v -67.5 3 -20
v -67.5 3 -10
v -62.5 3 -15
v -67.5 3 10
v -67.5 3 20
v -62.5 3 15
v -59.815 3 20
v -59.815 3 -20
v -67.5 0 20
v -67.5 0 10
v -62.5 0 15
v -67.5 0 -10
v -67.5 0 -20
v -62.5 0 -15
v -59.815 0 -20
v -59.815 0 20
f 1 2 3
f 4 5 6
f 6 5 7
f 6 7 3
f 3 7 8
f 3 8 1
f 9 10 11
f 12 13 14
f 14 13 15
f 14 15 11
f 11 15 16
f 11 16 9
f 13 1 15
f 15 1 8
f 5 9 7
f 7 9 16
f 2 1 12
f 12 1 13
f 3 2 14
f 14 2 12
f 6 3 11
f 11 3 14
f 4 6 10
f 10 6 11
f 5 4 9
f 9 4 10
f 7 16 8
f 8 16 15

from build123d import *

# Parameters (mm, degrees)
CROQUIS1_R                 = 11
CROQUIS1_R_2               = 2
CROQUIS1_R_3               = 1.937672591
CROQUIS1_W                 = 30
CROQUIS1_H                 = 3
SALIENTE_EXTRUIR1_DEPTH    = 3
CROQUIS2_R                 = 13
CROQUIS2_R_2               = 11
SALIENTE_EXTRUIR2_DEPTH    = 4
CROQUIS3_R                 = 13
CROQUIS3_R_2               = 9
SALIENTE_EXTRUIR3_DEPTH    = 2
CHAFL_N1_SIZE              = 2
CHAFL_N2_SIZE              = 10
CORTAR_EXTRUIR1_DEPTH      = 10
CORTAR_EXTRUIR1_DEPTH_BACK = 10
CROQUIS4_W                 = 138.754626828
CROQUIS4_H                 = 77.213714618


with BuildPart() as part:
    # Croquis1 → Saliente-Extruir1 (new body)
    with BuildSketch(Plane(origin=(0, 0, 0), x_dir=(1, 0, 0), z_dir=(0, 1, 0))):
        Polygon((-67.5, 10), (-62.5, 15), (-62.5, -15), (-67.5, -10), (-67.5, -20), (67.5, -20), (67.5, 20), (-67.5, 20), align=None)
        with Locations((46.713951104, 0)):
            Circle(CROQUIS1_R, mode=Mode.SUBTRACT)
        with Locations((-52.5, 0)):
            Circle(CROQUIS1_R_2, mode=Mode.SUBTRACT)
        with Locations((27.185770037, 0)):
            Circle(CROQUIS1_R_3, mode=Mode.SUBTRACT)
        with Locations((12.185770037, 0)):
            Circle(CROQUIS1_R_2, mode=Mode.SUBTRACT)
        with Locations((-27.5, 11)):
            Rectangle(CROQUIS1_W, CROQUIS1_H, mode=Mode.SUBTRACT)
        with Locations((-27.5, -11)):
            Rectangle(CROQUIS1_W, CROQUIS1_H, mode=Mode.SUBTRACT)
    extrude(amount=SALIENTE_EXTRUIR1_DEPTH)

    # Croquis2 → Saliente-Extruir2 (add)
    with BuildSketch(Plane(origin=(0, 3, 0), x_dir=(1, 0, 0), z_dir=(0, 1, 0))):
        with Locations((46.713951104, 0)):
            Circle(CROQUIS2_R)
        with Locations((46.713951104, 0)):
            Circle(CROQUIS2_R_2, mode=Mode.SUBTRACT)
    extrude(amount=SALIENTE_EXTRUIR2_DEPTH)

    # Croquis3 → Saliente-Extruir3 (add)
    with BuildSketch(Plane(origin=(0, 7, 0), x_dir=(1, 0, 0), z_dir=(0, 1, 0))):
        with Locations((46.713951104, 0)):
            Circle(CROQUIS3_R)
        with Locations((46.713951104, 0)):
            Circle(CROQUIS3_R_2, mode=Mode.SUBTRACT)
    extrude(amount=SALIENTE_EXTRUIR3_DEPTH)

    # Chaflán1
    chafl_n1_edges = [part.edges().sort_by_distance(p)[0] for p in [
        (33.713951104, 9, 0),
    ]]
    chamfer(chafl_n1_edges, length=CHAFL_N1_SIZE)

    # Chaflán2
    chafl_n2_edges = [part.edges().sort_by_distance(p)[0] for p in [
        (67.5, 1.5, -20),
        (67.5, 1.5, 20),
    ]]
    chamfer(chafl_n2_edges, length=CHAFL_N2_SIZE)

    # Croquis4 → Cortar-Extruir1 (cut, two sides: drawn at the far end of the back side and taken through both)
    with BuildSketch(Plane(origin=(0, 3, 0), x_dir=(1, 0, 0), z_dir=(0, 1, 0)).offset(-CORTAR_EXTRUIR1_DEPTH_BACK)):
        with Locations((9.561847341, -1.869233315)):
            Rectangle(CROQUIS4_W, CROQUIS4_H)
    extrude(amount=CORTAR_EXTRUIR1_DEPTH + CORTAR_EXTRUIR1_DEPTH_BACK, mode=Mode.SUBTRACT)


solid = part.part
